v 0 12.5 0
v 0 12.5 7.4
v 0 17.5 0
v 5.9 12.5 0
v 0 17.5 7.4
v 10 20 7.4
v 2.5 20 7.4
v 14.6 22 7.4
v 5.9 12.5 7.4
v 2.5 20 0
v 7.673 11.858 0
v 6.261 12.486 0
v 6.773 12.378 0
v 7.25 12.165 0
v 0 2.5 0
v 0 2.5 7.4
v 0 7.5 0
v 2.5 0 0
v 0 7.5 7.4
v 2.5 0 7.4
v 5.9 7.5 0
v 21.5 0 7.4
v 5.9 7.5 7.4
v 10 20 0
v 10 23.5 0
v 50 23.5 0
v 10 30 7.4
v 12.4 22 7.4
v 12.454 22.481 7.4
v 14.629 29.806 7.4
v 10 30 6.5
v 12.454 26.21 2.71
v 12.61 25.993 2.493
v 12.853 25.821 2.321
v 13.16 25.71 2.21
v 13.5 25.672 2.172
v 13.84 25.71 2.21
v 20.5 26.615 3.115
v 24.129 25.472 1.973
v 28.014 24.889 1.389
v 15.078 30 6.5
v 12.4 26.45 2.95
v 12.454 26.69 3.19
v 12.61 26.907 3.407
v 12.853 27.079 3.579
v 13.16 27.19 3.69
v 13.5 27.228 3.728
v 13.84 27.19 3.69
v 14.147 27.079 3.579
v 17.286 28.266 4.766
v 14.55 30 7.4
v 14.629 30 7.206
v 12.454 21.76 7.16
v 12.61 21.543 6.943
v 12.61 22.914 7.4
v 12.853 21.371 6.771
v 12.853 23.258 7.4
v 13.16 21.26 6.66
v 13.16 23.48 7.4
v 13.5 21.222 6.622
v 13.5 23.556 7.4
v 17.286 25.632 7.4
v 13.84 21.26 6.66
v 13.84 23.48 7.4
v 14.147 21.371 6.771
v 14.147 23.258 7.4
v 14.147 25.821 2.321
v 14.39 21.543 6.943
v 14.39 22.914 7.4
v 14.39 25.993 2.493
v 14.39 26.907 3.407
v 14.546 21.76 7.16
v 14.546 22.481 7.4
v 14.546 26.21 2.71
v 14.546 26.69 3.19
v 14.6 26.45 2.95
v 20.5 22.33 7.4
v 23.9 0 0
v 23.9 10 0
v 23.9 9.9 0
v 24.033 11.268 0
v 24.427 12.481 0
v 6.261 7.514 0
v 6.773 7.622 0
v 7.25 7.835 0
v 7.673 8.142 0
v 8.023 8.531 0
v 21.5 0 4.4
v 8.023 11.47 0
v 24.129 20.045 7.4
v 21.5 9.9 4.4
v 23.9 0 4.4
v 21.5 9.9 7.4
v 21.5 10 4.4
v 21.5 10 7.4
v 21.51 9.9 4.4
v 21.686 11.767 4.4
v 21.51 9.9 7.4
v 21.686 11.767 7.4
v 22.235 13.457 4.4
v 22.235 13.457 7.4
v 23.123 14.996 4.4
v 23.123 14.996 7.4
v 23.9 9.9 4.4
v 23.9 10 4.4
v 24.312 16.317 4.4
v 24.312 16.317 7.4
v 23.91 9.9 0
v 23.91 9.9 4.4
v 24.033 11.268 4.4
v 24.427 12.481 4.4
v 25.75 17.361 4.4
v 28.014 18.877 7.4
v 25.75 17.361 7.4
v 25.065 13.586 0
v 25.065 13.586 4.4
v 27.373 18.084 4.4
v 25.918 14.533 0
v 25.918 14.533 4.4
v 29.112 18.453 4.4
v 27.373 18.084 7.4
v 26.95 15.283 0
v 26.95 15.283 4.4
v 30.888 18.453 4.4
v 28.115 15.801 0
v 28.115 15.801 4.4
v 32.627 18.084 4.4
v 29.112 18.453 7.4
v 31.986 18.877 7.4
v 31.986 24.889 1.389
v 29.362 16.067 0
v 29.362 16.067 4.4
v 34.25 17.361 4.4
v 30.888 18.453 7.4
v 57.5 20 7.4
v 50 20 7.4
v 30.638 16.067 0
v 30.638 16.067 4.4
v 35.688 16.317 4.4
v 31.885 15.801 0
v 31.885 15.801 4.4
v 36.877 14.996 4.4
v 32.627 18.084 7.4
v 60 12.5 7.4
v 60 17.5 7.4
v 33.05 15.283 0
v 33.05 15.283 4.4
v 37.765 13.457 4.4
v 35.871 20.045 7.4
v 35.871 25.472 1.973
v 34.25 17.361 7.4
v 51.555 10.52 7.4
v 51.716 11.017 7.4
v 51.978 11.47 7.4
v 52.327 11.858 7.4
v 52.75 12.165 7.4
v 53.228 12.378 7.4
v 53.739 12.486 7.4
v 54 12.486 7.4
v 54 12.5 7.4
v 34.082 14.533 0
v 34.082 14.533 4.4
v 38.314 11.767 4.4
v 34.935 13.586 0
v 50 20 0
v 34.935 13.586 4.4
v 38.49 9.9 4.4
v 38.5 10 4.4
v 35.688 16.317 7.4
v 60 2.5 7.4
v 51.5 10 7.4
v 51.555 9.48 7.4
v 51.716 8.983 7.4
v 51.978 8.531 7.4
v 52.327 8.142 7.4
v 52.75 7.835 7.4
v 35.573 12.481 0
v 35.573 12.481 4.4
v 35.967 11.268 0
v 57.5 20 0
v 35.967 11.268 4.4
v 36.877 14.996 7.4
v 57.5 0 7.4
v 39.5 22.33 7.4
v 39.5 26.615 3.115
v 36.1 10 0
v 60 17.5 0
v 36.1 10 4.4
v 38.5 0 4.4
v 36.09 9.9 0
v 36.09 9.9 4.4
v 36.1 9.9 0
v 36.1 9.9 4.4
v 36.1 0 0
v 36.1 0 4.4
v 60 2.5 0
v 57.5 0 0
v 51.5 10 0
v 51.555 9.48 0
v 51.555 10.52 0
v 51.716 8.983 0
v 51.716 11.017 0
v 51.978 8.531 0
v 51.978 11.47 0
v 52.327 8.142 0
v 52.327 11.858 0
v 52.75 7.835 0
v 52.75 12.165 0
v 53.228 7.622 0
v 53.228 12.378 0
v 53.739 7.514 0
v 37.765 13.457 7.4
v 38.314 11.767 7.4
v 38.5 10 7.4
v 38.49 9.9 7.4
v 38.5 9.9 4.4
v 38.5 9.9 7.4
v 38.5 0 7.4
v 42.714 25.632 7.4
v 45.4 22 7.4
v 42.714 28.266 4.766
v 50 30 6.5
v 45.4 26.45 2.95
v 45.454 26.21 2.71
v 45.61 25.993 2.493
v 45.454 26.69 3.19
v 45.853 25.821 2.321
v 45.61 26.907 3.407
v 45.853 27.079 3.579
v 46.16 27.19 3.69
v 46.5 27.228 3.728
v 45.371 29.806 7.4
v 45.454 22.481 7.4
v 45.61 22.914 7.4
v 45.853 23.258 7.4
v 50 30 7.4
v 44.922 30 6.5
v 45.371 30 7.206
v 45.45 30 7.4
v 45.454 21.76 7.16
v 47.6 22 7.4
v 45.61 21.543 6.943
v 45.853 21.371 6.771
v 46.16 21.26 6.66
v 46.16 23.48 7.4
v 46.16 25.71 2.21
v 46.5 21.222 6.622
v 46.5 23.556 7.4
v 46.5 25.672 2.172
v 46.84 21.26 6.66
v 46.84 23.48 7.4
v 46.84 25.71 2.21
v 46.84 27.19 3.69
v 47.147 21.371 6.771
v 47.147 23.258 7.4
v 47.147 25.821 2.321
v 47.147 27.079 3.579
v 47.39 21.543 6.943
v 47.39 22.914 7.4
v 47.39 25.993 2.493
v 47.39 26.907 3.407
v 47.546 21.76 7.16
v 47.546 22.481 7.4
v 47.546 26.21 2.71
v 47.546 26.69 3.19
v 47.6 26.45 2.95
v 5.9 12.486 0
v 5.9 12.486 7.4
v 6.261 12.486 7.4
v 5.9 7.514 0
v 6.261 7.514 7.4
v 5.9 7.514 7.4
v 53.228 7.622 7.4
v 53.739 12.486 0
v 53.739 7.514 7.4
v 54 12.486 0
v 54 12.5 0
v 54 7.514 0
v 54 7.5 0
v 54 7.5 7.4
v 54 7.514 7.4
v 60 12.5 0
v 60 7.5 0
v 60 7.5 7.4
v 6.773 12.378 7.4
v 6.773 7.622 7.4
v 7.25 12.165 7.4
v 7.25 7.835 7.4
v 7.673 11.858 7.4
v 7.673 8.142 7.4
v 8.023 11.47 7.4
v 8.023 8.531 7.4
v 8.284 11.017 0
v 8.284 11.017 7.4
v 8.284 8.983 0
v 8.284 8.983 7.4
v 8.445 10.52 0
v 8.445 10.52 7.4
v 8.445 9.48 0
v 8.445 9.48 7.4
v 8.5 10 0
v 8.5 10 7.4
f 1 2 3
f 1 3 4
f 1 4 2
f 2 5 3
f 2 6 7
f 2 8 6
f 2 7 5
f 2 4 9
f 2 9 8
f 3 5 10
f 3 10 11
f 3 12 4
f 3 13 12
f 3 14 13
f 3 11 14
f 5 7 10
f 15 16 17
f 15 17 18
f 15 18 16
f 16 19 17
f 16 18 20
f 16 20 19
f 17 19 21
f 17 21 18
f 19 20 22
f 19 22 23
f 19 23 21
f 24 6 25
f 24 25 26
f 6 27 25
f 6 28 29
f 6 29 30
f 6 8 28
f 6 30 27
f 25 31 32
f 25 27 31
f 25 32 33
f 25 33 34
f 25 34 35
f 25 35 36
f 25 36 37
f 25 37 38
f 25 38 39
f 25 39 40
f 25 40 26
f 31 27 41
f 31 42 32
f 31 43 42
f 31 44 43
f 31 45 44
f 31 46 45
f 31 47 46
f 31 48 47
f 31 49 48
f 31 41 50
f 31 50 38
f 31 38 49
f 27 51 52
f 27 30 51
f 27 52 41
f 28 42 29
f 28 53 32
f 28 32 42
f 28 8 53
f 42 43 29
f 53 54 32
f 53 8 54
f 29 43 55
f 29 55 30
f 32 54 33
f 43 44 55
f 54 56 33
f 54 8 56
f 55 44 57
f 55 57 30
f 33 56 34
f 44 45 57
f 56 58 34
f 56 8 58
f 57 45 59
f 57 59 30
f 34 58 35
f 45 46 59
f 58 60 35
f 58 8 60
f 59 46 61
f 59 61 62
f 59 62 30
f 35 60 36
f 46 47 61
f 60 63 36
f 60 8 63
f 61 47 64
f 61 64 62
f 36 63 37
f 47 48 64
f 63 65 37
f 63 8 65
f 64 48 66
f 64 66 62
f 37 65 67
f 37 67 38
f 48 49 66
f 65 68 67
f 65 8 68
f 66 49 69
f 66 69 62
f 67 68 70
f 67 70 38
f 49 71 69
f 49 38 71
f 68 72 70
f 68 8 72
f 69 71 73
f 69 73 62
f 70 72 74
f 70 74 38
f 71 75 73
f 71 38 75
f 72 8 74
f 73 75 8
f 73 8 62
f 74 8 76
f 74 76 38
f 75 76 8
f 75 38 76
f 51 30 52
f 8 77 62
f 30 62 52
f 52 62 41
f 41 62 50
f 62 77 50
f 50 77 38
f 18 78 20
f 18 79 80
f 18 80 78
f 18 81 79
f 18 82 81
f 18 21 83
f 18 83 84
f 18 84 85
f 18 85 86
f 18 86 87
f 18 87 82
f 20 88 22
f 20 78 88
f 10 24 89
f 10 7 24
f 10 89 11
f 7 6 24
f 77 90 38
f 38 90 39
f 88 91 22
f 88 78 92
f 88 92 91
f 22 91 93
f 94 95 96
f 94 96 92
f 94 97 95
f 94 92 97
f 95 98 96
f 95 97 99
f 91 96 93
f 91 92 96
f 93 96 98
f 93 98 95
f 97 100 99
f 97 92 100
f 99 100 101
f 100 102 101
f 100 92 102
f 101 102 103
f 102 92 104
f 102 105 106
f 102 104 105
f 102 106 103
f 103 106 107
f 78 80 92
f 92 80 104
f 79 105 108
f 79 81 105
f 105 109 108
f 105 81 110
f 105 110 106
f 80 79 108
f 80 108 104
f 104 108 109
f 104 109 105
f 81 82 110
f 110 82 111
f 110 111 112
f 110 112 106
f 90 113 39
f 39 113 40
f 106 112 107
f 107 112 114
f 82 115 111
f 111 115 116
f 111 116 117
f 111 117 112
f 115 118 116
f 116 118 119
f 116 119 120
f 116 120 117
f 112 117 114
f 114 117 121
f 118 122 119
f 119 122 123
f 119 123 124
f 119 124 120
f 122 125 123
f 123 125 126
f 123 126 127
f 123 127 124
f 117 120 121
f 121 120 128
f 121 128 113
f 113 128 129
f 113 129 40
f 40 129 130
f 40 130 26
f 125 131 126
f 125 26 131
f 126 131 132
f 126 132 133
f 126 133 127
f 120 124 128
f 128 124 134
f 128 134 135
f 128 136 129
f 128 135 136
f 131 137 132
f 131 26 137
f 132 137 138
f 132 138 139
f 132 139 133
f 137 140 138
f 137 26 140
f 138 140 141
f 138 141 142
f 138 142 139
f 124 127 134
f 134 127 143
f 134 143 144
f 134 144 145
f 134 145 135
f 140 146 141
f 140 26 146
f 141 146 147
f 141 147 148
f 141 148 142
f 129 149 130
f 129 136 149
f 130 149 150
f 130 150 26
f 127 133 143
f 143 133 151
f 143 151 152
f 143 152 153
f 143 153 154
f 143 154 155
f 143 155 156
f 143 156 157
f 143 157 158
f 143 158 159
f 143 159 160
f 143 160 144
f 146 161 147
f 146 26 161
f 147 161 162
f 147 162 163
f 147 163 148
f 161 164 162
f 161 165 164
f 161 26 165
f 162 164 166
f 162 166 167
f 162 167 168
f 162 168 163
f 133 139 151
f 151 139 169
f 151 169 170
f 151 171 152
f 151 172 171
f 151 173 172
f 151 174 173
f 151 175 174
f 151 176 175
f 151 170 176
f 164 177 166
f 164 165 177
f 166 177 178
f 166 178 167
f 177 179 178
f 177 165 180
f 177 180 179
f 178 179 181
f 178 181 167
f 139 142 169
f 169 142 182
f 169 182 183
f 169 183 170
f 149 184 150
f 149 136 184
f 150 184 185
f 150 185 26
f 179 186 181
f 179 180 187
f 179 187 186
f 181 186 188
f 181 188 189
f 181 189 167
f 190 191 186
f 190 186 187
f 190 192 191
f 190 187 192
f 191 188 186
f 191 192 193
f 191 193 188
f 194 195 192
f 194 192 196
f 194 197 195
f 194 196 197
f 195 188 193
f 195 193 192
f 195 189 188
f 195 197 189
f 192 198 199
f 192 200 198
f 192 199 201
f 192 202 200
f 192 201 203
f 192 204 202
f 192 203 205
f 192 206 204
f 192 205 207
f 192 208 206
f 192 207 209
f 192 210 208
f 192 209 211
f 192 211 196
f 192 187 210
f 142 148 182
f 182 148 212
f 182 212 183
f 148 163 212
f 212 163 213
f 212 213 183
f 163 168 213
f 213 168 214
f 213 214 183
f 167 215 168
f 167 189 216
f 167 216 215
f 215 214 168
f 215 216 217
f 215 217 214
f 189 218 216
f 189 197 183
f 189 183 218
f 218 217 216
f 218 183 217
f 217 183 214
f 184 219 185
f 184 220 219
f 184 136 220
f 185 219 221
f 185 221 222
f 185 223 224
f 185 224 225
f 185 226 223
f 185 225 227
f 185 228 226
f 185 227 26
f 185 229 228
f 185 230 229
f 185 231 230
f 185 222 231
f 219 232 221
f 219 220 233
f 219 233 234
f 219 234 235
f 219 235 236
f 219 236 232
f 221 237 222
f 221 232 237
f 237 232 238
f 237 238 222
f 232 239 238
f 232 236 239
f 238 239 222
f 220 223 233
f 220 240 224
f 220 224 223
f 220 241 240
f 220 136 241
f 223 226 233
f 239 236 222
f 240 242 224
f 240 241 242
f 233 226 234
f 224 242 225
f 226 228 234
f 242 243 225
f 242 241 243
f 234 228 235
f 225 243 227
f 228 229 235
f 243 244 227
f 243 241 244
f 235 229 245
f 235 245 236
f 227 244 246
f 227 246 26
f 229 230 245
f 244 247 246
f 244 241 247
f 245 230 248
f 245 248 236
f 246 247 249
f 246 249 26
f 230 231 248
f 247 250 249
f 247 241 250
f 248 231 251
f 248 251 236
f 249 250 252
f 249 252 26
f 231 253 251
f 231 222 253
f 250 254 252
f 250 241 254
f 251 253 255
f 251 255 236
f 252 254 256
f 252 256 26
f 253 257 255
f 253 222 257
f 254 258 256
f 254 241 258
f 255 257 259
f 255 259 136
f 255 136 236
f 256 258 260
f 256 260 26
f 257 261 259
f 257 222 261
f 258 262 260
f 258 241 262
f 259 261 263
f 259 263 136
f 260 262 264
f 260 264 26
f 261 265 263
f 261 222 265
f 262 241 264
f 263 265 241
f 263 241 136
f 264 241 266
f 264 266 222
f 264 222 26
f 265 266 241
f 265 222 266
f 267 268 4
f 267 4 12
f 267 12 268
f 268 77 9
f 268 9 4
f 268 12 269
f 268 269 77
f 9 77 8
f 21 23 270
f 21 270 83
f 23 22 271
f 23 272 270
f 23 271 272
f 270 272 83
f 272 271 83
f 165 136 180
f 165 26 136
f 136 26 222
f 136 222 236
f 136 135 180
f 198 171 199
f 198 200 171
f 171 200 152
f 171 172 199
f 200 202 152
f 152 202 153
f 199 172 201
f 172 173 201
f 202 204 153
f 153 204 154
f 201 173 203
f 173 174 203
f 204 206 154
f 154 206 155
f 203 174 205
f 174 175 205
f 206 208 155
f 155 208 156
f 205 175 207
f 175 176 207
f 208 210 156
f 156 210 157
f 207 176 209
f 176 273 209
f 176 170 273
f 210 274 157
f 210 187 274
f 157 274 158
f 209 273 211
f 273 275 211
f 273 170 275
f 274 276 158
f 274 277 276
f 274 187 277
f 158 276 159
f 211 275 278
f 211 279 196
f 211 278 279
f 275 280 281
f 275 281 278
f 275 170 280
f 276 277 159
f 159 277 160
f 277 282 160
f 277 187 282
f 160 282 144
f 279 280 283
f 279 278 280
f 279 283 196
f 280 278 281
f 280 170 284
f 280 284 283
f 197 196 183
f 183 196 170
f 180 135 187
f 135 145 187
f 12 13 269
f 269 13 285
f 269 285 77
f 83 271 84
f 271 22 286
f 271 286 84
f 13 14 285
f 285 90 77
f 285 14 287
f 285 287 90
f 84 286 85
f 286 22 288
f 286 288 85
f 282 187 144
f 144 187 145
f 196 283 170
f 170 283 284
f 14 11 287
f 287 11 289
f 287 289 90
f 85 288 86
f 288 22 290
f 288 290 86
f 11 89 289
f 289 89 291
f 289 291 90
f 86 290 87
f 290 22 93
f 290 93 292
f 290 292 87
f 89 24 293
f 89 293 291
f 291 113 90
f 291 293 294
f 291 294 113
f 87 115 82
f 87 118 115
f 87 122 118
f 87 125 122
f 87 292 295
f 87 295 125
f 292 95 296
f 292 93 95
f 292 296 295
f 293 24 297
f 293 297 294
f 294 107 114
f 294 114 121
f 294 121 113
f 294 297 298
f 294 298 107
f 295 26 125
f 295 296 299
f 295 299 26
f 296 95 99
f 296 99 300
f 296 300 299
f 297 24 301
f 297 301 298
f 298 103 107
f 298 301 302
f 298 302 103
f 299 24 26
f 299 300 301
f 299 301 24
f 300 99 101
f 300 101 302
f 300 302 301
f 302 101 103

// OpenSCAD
// RebeliX
//
// j-head mount + fan 40mm
// GNU GPL v3
// Martin Neruda
// http://www.reprap4u.cz

fan_width = 40;
fan_diameter = 38;
fan_mount = 33;

difference(){
	union(){
	  cube([60,20,7.4]);
	  translate([60/2-fan_width/2,20,0]) cube([fan_width,10,7.4]);  
	}	
	// Fan cutout
	translate([60/2-fan_width/2-0.1,20+3.5,0]) rotate([-45,0,0]) cube([fan_width+1,15,15]); 
	translate([60/2,32,21]) rotate([-135,0,0]) cylinder(r=fan_diameter/2, h=20);
	translate([60/2,20+2,7.4]){
	 translate([fan_mount/2,0,0]) rotate([-135,0,0]) cylinder(r=1.1,h=20,$fn=20);
	 translate([-fan_mount/2,0,0]) rotate([-135,0,0]) cylinder(r=1.1,h=30,$fn=20);
	}
	
	translate([30,10,4.4]) cylinder(r=8.5,h=3.1,$fn=30);
	translate([30-8.5,-0.1,4.4]) cube([17,10,3.1]);
		
	translate([30,10,-0.1]) cylinder(r=6.1,h=10,$fn=30);
	translate([30-6.1,-0.1,-0.1]) cube([12.2,10,10]);
	
	// Mount holes
	translate([30-24,10,-0.1]) cylinder(r=2.5,h=10,$fn=30);
	translate([-0.1,10-2.5,-0.1]) cube([6,5,10]);
		
	translate([30+24,10,-0.1]) cylinder(r=2.5,h=10,$fn=30);
	translate([30+24,10-2.5,-0.1]) cube([7,5,10]);
	
	// Corner cuts
	translate([2.5,0,-0.1]) rotate([0,0,135]) cube([5,5,10]);
	translate([60-2.5,0,-0.1]) rotate([0,0,-45]) cube([5,5,10]);
	translate([60,20-2.5,-0.1]) rotate([0,0,45]) cube([5,5,10]);
	translate([2.5,20,-0.1]) rotate([0,0,135]) cube([5,5,10]);
}	
